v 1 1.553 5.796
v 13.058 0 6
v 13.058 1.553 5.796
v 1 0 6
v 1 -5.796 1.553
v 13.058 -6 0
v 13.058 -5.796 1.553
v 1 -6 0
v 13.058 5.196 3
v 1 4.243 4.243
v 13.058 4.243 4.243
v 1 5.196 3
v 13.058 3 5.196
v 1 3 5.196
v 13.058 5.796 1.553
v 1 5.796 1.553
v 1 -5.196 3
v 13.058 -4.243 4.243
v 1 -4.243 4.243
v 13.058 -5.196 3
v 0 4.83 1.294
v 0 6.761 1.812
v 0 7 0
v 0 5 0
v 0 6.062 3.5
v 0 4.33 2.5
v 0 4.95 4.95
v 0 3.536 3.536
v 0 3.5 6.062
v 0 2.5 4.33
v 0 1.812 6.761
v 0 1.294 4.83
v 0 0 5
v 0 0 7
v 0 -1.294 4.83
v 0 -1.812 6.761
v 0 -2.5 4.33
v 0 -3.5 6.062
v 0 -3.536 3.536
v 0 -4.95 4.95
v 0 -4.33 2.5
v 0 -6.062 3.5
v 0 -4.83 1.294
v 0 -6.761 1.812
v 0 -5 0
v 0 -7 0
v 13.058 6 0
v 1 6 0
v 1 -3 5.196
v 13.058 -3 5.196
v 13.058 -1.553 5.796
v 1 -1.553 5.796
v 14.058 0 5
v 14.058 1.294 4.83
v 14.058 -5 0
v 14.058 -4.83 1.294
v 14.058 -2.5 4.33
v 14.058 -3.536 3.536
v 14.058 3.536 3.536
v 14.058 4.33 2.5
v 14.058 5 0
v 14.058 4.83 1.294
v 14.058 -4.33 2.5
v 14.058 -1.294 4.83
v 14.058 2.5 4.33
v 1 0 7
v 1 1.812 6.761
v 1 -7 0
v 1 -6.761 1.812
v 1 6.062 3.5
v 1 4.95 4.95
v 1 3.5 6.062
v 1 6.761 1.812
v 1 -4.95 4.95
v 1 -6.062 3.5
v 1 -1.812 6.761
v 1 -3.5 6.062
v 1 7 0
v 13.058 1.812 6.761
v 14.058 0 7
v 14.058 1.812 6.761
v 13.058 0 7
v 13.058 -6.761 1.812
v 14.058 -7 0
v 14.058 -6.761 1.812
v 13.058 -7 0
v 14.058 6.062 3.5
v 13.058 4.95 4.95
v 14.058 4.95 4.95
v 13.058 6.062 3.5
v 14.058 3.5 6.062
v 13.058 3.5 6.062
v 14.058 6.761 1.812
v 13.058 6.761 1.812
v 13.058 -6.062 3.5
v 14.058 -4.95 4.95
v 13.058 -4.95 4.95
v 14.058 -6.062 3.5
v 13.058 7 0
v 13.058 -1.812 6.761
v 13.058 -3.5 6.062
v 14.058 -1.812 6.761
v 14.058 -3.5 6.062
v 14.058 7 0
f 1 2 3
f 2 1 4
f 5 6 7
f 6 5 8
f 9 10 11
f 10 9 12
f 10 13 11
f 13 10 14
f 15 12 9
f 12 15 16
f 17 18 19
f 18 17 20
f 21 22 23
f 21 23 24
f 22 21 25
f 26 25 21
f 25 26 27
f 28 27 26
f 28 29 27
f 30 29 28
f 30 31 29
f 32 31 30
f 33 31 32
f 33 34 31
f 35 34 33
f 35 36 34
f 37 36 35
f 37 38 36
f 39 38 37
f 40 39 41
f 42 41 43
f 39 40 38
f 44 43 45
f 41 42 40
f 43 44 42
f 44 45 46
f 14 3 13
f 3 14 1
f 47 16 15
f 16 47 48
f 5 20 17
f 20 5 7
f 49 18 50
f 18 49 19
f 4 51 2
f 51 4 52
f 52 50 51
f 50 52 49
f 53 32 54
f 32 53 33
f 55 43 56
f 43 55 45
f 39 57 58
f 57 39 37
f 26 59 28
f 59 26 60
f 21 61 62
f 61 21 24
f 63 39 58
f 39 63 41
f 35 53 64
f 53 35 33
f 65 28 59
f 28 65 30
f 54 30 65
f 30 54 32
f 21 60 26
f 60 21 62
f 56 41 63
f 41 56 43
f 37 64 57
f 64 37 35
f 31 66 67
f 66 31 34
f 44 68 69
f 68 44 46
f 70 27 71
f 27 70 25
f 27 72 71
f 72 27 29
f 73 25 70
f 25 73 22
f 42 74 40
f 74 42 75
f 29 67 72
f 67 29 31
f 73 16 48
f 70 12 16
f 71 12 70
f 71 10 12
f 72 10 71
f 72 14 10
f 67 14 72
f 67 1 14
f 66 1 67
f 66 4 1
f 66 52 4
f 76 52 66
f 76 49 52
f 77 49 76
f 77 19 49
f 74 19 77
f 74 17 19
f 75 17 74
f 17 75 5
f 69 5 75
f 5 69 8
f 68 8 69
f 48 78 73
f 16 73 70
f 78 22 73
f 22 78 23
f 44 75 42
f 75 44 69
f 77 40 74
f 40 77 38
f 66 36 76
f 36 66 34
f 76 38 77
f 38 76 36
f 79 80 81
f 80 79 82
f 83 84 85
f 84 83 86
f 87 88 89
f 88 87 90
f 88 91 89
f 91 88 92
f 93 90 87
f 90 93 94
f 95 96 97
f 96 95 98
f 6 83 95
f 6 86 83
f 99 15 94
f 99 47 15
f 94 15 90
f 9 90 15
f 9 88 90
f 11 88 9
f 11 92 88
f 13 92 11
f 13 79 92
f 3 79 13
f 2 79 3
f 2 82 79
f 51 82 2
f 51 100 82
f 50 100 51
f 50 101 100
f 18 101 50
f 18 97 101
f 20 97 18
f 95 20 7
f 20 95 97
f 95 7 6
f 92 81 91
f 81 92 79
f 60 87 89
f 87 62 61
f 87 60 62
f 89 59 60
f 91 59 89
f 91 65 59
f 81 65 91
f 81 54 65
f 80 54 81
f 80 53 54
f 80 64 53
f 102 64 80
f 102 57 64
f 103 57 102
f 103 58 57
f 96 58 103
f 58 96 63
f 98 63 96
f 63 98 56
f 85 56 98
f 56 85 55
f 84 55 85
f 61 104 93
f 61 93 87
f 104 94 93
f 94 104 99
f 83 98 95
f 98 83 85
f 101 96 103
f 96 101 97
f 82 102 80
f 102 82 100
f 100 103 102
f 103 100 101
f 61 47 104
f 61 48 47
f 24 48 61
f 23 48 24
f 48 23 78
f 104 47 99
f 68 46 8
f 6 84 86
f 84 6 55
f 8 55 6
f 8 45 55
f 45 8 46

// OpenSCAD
// file: ../build_environments.scad
// build_environments.scad: modules to build level sections
//

module pool(diameter=10.0, wall_height=2.0, step_width=3.0, connections=[])
{
    difference() {
        union() {
        difference() {
            cylinder(h=0.5,r1=diameter+step_width,r2=diameter+step_width,$fn=48);
            translate([0,0,-0.1])
                cylinder(h=0.7,r1=diameter,r2=diameter,$fn=48);
        }
        difference() {
            cylinder(h=wall_height,r1=diameter+step_width+1.0,r2=diameter+step_width+1.0,$fn=48);
            translate([0,0,-0.1])
                cylinder(h=wall_height+0.2,r1=diameter+step_width,r2=diameter+step_width,$fn=48);
        }
        }
    
        for (c = connections)
        {
            rotate([0,90,0]) {
                angle = atan2(c[1],c[0]);
                rotate([-angle,0,0]) {
                    cylinder(h=diameter+5.0,r1=c[2],r2=c[2],$fn=48);
                }
            }
        }
    }
}

module straight(length=10.0, width=2.0, dy1=0.0, dy2=0.0, dz=0.0)
{
    dims = [0, 0, 0, 0, 0, (dz/length)];
    matrix = [
        [ 1, dims[0], dims[1], 0 ],
        [ dims[2], 1, dims[4], 0 ],
        [ dims[5], dims[3], 1, 0 ],
        [ 0, 0, 0, 1 ]
    ];
    multmatrix(matrix)
    difference() {
        translate([dy1,0,0])
        union() {
            rotate([0,90,0]) {
                difference() {
                    cylinder(h=(length-dy1-dy2),r1=width+1.0,r2=width+1.0,$fn=24);
                    translate([0,0,-0.1])
                        cylinder(h=(length-dy1-dy2+0.2),r1=width,r2=width,$fn=24);
                }
                difference() {
                    cylinder(h=1.0,r1=width+2.0,r2=width+2.0,$fn=24);
                    translate([0,0,-0.1])
                        cylinder(h=1.2,r1=width,r2=width,$fn=24);
                }
                translate([0,0,(length-dy1-dy2)-1.0]) {
                    difference() {
                        cylinder(h=1.0,r1=width+2.0,r2=width+2.0,$fn=24);
                        translate([0,0,-0.1])
                            cylinder(h=1.2,r1=width,r2=width,$fn=24);
                    }
                }
            }
        }
        translate([0,0,-(2*width+4.0)/2])
            cube([3*length,3*length,2*width+4.0],center=true);
    }
}

module curve(p0=[0,0], center=[0,0], dir=1, angle=0.0, width=2.0)
{
    radius = sqrt((p0[0]-center[0])*(p0[0]-center[0]) + (p0[1]-center[1])*(p0[1]-center[1]));
    if (dir == 0) {
        difference() {
            rotate([0,0,-90])
            difference() {
                rotate_extrude(angle = angle, convexity = 10, $fn=32)
                    translate([radius, 0, 0])
                        circle(r = width+1.0,$fn=24);
                rotate([0,0,-1.0])
                    rotate_extrude(angle = angle+2.0, convexity = 10, $fn=32)
                        translate([radius, 0, 0])
                            circle(r = width,$fn=24);
            }
            translate([0,0,-(2*width+4.0)/2])
                cube([5*radius,5*radius,2*width+4.0],center=true);
        }
    }
    else {
        difference() {
            rotate([0,0,90])
            difference() {
                rotate_extrude(angle = -angle, convexity = 10, $fn=32)
                    translate([radius, 0, 0])
                        circle(r = width+1.0,$fn=24);
                rotate([0,0,1.0])
                    rotate_extrude(angle = -angle-2.0, convexity = 10, $fn=32)
                        translate([radius, 0, 0])
                            circle(r = width,$fn=24);
            }
            translate([0,0,-(2*width+4.0)/2])
                cube([5*radius,5*radius,2*width+4.0],center=true);
        }
    }

}

// test pool
//pool(diameter=12.0000, wall_height=3.0000, step_width=3.0000, connections=[[0.0000,-26.0000,2.0000], [23.6074,0.0000,2.0000]]);

// test straight, slope
//straight(length=26.0000, width=2.0000, dy1=11.8322, dy2=6.7082, dz=0.0000);
//straight(length=29.1549, width=12.0000, dy1=0.0000, dy2=0.0000, dz=-15.0000);

// test curve
//curve(p0=[23.6074, 0.0000], center=[23.6074, 5.0000], dir=0, angle=60.1011, width=2.0000);
//curve(p0=[33.6426, 12.4219], center=[37.9771, 9.9295], dir=1, angle=120.4627, width=2.0000);
// main file
use <../build_environments.scad>;
straight(length=14.0577, width=5.0000, dy1=0.0000, dy2=0.0000, dz=0.0000);
